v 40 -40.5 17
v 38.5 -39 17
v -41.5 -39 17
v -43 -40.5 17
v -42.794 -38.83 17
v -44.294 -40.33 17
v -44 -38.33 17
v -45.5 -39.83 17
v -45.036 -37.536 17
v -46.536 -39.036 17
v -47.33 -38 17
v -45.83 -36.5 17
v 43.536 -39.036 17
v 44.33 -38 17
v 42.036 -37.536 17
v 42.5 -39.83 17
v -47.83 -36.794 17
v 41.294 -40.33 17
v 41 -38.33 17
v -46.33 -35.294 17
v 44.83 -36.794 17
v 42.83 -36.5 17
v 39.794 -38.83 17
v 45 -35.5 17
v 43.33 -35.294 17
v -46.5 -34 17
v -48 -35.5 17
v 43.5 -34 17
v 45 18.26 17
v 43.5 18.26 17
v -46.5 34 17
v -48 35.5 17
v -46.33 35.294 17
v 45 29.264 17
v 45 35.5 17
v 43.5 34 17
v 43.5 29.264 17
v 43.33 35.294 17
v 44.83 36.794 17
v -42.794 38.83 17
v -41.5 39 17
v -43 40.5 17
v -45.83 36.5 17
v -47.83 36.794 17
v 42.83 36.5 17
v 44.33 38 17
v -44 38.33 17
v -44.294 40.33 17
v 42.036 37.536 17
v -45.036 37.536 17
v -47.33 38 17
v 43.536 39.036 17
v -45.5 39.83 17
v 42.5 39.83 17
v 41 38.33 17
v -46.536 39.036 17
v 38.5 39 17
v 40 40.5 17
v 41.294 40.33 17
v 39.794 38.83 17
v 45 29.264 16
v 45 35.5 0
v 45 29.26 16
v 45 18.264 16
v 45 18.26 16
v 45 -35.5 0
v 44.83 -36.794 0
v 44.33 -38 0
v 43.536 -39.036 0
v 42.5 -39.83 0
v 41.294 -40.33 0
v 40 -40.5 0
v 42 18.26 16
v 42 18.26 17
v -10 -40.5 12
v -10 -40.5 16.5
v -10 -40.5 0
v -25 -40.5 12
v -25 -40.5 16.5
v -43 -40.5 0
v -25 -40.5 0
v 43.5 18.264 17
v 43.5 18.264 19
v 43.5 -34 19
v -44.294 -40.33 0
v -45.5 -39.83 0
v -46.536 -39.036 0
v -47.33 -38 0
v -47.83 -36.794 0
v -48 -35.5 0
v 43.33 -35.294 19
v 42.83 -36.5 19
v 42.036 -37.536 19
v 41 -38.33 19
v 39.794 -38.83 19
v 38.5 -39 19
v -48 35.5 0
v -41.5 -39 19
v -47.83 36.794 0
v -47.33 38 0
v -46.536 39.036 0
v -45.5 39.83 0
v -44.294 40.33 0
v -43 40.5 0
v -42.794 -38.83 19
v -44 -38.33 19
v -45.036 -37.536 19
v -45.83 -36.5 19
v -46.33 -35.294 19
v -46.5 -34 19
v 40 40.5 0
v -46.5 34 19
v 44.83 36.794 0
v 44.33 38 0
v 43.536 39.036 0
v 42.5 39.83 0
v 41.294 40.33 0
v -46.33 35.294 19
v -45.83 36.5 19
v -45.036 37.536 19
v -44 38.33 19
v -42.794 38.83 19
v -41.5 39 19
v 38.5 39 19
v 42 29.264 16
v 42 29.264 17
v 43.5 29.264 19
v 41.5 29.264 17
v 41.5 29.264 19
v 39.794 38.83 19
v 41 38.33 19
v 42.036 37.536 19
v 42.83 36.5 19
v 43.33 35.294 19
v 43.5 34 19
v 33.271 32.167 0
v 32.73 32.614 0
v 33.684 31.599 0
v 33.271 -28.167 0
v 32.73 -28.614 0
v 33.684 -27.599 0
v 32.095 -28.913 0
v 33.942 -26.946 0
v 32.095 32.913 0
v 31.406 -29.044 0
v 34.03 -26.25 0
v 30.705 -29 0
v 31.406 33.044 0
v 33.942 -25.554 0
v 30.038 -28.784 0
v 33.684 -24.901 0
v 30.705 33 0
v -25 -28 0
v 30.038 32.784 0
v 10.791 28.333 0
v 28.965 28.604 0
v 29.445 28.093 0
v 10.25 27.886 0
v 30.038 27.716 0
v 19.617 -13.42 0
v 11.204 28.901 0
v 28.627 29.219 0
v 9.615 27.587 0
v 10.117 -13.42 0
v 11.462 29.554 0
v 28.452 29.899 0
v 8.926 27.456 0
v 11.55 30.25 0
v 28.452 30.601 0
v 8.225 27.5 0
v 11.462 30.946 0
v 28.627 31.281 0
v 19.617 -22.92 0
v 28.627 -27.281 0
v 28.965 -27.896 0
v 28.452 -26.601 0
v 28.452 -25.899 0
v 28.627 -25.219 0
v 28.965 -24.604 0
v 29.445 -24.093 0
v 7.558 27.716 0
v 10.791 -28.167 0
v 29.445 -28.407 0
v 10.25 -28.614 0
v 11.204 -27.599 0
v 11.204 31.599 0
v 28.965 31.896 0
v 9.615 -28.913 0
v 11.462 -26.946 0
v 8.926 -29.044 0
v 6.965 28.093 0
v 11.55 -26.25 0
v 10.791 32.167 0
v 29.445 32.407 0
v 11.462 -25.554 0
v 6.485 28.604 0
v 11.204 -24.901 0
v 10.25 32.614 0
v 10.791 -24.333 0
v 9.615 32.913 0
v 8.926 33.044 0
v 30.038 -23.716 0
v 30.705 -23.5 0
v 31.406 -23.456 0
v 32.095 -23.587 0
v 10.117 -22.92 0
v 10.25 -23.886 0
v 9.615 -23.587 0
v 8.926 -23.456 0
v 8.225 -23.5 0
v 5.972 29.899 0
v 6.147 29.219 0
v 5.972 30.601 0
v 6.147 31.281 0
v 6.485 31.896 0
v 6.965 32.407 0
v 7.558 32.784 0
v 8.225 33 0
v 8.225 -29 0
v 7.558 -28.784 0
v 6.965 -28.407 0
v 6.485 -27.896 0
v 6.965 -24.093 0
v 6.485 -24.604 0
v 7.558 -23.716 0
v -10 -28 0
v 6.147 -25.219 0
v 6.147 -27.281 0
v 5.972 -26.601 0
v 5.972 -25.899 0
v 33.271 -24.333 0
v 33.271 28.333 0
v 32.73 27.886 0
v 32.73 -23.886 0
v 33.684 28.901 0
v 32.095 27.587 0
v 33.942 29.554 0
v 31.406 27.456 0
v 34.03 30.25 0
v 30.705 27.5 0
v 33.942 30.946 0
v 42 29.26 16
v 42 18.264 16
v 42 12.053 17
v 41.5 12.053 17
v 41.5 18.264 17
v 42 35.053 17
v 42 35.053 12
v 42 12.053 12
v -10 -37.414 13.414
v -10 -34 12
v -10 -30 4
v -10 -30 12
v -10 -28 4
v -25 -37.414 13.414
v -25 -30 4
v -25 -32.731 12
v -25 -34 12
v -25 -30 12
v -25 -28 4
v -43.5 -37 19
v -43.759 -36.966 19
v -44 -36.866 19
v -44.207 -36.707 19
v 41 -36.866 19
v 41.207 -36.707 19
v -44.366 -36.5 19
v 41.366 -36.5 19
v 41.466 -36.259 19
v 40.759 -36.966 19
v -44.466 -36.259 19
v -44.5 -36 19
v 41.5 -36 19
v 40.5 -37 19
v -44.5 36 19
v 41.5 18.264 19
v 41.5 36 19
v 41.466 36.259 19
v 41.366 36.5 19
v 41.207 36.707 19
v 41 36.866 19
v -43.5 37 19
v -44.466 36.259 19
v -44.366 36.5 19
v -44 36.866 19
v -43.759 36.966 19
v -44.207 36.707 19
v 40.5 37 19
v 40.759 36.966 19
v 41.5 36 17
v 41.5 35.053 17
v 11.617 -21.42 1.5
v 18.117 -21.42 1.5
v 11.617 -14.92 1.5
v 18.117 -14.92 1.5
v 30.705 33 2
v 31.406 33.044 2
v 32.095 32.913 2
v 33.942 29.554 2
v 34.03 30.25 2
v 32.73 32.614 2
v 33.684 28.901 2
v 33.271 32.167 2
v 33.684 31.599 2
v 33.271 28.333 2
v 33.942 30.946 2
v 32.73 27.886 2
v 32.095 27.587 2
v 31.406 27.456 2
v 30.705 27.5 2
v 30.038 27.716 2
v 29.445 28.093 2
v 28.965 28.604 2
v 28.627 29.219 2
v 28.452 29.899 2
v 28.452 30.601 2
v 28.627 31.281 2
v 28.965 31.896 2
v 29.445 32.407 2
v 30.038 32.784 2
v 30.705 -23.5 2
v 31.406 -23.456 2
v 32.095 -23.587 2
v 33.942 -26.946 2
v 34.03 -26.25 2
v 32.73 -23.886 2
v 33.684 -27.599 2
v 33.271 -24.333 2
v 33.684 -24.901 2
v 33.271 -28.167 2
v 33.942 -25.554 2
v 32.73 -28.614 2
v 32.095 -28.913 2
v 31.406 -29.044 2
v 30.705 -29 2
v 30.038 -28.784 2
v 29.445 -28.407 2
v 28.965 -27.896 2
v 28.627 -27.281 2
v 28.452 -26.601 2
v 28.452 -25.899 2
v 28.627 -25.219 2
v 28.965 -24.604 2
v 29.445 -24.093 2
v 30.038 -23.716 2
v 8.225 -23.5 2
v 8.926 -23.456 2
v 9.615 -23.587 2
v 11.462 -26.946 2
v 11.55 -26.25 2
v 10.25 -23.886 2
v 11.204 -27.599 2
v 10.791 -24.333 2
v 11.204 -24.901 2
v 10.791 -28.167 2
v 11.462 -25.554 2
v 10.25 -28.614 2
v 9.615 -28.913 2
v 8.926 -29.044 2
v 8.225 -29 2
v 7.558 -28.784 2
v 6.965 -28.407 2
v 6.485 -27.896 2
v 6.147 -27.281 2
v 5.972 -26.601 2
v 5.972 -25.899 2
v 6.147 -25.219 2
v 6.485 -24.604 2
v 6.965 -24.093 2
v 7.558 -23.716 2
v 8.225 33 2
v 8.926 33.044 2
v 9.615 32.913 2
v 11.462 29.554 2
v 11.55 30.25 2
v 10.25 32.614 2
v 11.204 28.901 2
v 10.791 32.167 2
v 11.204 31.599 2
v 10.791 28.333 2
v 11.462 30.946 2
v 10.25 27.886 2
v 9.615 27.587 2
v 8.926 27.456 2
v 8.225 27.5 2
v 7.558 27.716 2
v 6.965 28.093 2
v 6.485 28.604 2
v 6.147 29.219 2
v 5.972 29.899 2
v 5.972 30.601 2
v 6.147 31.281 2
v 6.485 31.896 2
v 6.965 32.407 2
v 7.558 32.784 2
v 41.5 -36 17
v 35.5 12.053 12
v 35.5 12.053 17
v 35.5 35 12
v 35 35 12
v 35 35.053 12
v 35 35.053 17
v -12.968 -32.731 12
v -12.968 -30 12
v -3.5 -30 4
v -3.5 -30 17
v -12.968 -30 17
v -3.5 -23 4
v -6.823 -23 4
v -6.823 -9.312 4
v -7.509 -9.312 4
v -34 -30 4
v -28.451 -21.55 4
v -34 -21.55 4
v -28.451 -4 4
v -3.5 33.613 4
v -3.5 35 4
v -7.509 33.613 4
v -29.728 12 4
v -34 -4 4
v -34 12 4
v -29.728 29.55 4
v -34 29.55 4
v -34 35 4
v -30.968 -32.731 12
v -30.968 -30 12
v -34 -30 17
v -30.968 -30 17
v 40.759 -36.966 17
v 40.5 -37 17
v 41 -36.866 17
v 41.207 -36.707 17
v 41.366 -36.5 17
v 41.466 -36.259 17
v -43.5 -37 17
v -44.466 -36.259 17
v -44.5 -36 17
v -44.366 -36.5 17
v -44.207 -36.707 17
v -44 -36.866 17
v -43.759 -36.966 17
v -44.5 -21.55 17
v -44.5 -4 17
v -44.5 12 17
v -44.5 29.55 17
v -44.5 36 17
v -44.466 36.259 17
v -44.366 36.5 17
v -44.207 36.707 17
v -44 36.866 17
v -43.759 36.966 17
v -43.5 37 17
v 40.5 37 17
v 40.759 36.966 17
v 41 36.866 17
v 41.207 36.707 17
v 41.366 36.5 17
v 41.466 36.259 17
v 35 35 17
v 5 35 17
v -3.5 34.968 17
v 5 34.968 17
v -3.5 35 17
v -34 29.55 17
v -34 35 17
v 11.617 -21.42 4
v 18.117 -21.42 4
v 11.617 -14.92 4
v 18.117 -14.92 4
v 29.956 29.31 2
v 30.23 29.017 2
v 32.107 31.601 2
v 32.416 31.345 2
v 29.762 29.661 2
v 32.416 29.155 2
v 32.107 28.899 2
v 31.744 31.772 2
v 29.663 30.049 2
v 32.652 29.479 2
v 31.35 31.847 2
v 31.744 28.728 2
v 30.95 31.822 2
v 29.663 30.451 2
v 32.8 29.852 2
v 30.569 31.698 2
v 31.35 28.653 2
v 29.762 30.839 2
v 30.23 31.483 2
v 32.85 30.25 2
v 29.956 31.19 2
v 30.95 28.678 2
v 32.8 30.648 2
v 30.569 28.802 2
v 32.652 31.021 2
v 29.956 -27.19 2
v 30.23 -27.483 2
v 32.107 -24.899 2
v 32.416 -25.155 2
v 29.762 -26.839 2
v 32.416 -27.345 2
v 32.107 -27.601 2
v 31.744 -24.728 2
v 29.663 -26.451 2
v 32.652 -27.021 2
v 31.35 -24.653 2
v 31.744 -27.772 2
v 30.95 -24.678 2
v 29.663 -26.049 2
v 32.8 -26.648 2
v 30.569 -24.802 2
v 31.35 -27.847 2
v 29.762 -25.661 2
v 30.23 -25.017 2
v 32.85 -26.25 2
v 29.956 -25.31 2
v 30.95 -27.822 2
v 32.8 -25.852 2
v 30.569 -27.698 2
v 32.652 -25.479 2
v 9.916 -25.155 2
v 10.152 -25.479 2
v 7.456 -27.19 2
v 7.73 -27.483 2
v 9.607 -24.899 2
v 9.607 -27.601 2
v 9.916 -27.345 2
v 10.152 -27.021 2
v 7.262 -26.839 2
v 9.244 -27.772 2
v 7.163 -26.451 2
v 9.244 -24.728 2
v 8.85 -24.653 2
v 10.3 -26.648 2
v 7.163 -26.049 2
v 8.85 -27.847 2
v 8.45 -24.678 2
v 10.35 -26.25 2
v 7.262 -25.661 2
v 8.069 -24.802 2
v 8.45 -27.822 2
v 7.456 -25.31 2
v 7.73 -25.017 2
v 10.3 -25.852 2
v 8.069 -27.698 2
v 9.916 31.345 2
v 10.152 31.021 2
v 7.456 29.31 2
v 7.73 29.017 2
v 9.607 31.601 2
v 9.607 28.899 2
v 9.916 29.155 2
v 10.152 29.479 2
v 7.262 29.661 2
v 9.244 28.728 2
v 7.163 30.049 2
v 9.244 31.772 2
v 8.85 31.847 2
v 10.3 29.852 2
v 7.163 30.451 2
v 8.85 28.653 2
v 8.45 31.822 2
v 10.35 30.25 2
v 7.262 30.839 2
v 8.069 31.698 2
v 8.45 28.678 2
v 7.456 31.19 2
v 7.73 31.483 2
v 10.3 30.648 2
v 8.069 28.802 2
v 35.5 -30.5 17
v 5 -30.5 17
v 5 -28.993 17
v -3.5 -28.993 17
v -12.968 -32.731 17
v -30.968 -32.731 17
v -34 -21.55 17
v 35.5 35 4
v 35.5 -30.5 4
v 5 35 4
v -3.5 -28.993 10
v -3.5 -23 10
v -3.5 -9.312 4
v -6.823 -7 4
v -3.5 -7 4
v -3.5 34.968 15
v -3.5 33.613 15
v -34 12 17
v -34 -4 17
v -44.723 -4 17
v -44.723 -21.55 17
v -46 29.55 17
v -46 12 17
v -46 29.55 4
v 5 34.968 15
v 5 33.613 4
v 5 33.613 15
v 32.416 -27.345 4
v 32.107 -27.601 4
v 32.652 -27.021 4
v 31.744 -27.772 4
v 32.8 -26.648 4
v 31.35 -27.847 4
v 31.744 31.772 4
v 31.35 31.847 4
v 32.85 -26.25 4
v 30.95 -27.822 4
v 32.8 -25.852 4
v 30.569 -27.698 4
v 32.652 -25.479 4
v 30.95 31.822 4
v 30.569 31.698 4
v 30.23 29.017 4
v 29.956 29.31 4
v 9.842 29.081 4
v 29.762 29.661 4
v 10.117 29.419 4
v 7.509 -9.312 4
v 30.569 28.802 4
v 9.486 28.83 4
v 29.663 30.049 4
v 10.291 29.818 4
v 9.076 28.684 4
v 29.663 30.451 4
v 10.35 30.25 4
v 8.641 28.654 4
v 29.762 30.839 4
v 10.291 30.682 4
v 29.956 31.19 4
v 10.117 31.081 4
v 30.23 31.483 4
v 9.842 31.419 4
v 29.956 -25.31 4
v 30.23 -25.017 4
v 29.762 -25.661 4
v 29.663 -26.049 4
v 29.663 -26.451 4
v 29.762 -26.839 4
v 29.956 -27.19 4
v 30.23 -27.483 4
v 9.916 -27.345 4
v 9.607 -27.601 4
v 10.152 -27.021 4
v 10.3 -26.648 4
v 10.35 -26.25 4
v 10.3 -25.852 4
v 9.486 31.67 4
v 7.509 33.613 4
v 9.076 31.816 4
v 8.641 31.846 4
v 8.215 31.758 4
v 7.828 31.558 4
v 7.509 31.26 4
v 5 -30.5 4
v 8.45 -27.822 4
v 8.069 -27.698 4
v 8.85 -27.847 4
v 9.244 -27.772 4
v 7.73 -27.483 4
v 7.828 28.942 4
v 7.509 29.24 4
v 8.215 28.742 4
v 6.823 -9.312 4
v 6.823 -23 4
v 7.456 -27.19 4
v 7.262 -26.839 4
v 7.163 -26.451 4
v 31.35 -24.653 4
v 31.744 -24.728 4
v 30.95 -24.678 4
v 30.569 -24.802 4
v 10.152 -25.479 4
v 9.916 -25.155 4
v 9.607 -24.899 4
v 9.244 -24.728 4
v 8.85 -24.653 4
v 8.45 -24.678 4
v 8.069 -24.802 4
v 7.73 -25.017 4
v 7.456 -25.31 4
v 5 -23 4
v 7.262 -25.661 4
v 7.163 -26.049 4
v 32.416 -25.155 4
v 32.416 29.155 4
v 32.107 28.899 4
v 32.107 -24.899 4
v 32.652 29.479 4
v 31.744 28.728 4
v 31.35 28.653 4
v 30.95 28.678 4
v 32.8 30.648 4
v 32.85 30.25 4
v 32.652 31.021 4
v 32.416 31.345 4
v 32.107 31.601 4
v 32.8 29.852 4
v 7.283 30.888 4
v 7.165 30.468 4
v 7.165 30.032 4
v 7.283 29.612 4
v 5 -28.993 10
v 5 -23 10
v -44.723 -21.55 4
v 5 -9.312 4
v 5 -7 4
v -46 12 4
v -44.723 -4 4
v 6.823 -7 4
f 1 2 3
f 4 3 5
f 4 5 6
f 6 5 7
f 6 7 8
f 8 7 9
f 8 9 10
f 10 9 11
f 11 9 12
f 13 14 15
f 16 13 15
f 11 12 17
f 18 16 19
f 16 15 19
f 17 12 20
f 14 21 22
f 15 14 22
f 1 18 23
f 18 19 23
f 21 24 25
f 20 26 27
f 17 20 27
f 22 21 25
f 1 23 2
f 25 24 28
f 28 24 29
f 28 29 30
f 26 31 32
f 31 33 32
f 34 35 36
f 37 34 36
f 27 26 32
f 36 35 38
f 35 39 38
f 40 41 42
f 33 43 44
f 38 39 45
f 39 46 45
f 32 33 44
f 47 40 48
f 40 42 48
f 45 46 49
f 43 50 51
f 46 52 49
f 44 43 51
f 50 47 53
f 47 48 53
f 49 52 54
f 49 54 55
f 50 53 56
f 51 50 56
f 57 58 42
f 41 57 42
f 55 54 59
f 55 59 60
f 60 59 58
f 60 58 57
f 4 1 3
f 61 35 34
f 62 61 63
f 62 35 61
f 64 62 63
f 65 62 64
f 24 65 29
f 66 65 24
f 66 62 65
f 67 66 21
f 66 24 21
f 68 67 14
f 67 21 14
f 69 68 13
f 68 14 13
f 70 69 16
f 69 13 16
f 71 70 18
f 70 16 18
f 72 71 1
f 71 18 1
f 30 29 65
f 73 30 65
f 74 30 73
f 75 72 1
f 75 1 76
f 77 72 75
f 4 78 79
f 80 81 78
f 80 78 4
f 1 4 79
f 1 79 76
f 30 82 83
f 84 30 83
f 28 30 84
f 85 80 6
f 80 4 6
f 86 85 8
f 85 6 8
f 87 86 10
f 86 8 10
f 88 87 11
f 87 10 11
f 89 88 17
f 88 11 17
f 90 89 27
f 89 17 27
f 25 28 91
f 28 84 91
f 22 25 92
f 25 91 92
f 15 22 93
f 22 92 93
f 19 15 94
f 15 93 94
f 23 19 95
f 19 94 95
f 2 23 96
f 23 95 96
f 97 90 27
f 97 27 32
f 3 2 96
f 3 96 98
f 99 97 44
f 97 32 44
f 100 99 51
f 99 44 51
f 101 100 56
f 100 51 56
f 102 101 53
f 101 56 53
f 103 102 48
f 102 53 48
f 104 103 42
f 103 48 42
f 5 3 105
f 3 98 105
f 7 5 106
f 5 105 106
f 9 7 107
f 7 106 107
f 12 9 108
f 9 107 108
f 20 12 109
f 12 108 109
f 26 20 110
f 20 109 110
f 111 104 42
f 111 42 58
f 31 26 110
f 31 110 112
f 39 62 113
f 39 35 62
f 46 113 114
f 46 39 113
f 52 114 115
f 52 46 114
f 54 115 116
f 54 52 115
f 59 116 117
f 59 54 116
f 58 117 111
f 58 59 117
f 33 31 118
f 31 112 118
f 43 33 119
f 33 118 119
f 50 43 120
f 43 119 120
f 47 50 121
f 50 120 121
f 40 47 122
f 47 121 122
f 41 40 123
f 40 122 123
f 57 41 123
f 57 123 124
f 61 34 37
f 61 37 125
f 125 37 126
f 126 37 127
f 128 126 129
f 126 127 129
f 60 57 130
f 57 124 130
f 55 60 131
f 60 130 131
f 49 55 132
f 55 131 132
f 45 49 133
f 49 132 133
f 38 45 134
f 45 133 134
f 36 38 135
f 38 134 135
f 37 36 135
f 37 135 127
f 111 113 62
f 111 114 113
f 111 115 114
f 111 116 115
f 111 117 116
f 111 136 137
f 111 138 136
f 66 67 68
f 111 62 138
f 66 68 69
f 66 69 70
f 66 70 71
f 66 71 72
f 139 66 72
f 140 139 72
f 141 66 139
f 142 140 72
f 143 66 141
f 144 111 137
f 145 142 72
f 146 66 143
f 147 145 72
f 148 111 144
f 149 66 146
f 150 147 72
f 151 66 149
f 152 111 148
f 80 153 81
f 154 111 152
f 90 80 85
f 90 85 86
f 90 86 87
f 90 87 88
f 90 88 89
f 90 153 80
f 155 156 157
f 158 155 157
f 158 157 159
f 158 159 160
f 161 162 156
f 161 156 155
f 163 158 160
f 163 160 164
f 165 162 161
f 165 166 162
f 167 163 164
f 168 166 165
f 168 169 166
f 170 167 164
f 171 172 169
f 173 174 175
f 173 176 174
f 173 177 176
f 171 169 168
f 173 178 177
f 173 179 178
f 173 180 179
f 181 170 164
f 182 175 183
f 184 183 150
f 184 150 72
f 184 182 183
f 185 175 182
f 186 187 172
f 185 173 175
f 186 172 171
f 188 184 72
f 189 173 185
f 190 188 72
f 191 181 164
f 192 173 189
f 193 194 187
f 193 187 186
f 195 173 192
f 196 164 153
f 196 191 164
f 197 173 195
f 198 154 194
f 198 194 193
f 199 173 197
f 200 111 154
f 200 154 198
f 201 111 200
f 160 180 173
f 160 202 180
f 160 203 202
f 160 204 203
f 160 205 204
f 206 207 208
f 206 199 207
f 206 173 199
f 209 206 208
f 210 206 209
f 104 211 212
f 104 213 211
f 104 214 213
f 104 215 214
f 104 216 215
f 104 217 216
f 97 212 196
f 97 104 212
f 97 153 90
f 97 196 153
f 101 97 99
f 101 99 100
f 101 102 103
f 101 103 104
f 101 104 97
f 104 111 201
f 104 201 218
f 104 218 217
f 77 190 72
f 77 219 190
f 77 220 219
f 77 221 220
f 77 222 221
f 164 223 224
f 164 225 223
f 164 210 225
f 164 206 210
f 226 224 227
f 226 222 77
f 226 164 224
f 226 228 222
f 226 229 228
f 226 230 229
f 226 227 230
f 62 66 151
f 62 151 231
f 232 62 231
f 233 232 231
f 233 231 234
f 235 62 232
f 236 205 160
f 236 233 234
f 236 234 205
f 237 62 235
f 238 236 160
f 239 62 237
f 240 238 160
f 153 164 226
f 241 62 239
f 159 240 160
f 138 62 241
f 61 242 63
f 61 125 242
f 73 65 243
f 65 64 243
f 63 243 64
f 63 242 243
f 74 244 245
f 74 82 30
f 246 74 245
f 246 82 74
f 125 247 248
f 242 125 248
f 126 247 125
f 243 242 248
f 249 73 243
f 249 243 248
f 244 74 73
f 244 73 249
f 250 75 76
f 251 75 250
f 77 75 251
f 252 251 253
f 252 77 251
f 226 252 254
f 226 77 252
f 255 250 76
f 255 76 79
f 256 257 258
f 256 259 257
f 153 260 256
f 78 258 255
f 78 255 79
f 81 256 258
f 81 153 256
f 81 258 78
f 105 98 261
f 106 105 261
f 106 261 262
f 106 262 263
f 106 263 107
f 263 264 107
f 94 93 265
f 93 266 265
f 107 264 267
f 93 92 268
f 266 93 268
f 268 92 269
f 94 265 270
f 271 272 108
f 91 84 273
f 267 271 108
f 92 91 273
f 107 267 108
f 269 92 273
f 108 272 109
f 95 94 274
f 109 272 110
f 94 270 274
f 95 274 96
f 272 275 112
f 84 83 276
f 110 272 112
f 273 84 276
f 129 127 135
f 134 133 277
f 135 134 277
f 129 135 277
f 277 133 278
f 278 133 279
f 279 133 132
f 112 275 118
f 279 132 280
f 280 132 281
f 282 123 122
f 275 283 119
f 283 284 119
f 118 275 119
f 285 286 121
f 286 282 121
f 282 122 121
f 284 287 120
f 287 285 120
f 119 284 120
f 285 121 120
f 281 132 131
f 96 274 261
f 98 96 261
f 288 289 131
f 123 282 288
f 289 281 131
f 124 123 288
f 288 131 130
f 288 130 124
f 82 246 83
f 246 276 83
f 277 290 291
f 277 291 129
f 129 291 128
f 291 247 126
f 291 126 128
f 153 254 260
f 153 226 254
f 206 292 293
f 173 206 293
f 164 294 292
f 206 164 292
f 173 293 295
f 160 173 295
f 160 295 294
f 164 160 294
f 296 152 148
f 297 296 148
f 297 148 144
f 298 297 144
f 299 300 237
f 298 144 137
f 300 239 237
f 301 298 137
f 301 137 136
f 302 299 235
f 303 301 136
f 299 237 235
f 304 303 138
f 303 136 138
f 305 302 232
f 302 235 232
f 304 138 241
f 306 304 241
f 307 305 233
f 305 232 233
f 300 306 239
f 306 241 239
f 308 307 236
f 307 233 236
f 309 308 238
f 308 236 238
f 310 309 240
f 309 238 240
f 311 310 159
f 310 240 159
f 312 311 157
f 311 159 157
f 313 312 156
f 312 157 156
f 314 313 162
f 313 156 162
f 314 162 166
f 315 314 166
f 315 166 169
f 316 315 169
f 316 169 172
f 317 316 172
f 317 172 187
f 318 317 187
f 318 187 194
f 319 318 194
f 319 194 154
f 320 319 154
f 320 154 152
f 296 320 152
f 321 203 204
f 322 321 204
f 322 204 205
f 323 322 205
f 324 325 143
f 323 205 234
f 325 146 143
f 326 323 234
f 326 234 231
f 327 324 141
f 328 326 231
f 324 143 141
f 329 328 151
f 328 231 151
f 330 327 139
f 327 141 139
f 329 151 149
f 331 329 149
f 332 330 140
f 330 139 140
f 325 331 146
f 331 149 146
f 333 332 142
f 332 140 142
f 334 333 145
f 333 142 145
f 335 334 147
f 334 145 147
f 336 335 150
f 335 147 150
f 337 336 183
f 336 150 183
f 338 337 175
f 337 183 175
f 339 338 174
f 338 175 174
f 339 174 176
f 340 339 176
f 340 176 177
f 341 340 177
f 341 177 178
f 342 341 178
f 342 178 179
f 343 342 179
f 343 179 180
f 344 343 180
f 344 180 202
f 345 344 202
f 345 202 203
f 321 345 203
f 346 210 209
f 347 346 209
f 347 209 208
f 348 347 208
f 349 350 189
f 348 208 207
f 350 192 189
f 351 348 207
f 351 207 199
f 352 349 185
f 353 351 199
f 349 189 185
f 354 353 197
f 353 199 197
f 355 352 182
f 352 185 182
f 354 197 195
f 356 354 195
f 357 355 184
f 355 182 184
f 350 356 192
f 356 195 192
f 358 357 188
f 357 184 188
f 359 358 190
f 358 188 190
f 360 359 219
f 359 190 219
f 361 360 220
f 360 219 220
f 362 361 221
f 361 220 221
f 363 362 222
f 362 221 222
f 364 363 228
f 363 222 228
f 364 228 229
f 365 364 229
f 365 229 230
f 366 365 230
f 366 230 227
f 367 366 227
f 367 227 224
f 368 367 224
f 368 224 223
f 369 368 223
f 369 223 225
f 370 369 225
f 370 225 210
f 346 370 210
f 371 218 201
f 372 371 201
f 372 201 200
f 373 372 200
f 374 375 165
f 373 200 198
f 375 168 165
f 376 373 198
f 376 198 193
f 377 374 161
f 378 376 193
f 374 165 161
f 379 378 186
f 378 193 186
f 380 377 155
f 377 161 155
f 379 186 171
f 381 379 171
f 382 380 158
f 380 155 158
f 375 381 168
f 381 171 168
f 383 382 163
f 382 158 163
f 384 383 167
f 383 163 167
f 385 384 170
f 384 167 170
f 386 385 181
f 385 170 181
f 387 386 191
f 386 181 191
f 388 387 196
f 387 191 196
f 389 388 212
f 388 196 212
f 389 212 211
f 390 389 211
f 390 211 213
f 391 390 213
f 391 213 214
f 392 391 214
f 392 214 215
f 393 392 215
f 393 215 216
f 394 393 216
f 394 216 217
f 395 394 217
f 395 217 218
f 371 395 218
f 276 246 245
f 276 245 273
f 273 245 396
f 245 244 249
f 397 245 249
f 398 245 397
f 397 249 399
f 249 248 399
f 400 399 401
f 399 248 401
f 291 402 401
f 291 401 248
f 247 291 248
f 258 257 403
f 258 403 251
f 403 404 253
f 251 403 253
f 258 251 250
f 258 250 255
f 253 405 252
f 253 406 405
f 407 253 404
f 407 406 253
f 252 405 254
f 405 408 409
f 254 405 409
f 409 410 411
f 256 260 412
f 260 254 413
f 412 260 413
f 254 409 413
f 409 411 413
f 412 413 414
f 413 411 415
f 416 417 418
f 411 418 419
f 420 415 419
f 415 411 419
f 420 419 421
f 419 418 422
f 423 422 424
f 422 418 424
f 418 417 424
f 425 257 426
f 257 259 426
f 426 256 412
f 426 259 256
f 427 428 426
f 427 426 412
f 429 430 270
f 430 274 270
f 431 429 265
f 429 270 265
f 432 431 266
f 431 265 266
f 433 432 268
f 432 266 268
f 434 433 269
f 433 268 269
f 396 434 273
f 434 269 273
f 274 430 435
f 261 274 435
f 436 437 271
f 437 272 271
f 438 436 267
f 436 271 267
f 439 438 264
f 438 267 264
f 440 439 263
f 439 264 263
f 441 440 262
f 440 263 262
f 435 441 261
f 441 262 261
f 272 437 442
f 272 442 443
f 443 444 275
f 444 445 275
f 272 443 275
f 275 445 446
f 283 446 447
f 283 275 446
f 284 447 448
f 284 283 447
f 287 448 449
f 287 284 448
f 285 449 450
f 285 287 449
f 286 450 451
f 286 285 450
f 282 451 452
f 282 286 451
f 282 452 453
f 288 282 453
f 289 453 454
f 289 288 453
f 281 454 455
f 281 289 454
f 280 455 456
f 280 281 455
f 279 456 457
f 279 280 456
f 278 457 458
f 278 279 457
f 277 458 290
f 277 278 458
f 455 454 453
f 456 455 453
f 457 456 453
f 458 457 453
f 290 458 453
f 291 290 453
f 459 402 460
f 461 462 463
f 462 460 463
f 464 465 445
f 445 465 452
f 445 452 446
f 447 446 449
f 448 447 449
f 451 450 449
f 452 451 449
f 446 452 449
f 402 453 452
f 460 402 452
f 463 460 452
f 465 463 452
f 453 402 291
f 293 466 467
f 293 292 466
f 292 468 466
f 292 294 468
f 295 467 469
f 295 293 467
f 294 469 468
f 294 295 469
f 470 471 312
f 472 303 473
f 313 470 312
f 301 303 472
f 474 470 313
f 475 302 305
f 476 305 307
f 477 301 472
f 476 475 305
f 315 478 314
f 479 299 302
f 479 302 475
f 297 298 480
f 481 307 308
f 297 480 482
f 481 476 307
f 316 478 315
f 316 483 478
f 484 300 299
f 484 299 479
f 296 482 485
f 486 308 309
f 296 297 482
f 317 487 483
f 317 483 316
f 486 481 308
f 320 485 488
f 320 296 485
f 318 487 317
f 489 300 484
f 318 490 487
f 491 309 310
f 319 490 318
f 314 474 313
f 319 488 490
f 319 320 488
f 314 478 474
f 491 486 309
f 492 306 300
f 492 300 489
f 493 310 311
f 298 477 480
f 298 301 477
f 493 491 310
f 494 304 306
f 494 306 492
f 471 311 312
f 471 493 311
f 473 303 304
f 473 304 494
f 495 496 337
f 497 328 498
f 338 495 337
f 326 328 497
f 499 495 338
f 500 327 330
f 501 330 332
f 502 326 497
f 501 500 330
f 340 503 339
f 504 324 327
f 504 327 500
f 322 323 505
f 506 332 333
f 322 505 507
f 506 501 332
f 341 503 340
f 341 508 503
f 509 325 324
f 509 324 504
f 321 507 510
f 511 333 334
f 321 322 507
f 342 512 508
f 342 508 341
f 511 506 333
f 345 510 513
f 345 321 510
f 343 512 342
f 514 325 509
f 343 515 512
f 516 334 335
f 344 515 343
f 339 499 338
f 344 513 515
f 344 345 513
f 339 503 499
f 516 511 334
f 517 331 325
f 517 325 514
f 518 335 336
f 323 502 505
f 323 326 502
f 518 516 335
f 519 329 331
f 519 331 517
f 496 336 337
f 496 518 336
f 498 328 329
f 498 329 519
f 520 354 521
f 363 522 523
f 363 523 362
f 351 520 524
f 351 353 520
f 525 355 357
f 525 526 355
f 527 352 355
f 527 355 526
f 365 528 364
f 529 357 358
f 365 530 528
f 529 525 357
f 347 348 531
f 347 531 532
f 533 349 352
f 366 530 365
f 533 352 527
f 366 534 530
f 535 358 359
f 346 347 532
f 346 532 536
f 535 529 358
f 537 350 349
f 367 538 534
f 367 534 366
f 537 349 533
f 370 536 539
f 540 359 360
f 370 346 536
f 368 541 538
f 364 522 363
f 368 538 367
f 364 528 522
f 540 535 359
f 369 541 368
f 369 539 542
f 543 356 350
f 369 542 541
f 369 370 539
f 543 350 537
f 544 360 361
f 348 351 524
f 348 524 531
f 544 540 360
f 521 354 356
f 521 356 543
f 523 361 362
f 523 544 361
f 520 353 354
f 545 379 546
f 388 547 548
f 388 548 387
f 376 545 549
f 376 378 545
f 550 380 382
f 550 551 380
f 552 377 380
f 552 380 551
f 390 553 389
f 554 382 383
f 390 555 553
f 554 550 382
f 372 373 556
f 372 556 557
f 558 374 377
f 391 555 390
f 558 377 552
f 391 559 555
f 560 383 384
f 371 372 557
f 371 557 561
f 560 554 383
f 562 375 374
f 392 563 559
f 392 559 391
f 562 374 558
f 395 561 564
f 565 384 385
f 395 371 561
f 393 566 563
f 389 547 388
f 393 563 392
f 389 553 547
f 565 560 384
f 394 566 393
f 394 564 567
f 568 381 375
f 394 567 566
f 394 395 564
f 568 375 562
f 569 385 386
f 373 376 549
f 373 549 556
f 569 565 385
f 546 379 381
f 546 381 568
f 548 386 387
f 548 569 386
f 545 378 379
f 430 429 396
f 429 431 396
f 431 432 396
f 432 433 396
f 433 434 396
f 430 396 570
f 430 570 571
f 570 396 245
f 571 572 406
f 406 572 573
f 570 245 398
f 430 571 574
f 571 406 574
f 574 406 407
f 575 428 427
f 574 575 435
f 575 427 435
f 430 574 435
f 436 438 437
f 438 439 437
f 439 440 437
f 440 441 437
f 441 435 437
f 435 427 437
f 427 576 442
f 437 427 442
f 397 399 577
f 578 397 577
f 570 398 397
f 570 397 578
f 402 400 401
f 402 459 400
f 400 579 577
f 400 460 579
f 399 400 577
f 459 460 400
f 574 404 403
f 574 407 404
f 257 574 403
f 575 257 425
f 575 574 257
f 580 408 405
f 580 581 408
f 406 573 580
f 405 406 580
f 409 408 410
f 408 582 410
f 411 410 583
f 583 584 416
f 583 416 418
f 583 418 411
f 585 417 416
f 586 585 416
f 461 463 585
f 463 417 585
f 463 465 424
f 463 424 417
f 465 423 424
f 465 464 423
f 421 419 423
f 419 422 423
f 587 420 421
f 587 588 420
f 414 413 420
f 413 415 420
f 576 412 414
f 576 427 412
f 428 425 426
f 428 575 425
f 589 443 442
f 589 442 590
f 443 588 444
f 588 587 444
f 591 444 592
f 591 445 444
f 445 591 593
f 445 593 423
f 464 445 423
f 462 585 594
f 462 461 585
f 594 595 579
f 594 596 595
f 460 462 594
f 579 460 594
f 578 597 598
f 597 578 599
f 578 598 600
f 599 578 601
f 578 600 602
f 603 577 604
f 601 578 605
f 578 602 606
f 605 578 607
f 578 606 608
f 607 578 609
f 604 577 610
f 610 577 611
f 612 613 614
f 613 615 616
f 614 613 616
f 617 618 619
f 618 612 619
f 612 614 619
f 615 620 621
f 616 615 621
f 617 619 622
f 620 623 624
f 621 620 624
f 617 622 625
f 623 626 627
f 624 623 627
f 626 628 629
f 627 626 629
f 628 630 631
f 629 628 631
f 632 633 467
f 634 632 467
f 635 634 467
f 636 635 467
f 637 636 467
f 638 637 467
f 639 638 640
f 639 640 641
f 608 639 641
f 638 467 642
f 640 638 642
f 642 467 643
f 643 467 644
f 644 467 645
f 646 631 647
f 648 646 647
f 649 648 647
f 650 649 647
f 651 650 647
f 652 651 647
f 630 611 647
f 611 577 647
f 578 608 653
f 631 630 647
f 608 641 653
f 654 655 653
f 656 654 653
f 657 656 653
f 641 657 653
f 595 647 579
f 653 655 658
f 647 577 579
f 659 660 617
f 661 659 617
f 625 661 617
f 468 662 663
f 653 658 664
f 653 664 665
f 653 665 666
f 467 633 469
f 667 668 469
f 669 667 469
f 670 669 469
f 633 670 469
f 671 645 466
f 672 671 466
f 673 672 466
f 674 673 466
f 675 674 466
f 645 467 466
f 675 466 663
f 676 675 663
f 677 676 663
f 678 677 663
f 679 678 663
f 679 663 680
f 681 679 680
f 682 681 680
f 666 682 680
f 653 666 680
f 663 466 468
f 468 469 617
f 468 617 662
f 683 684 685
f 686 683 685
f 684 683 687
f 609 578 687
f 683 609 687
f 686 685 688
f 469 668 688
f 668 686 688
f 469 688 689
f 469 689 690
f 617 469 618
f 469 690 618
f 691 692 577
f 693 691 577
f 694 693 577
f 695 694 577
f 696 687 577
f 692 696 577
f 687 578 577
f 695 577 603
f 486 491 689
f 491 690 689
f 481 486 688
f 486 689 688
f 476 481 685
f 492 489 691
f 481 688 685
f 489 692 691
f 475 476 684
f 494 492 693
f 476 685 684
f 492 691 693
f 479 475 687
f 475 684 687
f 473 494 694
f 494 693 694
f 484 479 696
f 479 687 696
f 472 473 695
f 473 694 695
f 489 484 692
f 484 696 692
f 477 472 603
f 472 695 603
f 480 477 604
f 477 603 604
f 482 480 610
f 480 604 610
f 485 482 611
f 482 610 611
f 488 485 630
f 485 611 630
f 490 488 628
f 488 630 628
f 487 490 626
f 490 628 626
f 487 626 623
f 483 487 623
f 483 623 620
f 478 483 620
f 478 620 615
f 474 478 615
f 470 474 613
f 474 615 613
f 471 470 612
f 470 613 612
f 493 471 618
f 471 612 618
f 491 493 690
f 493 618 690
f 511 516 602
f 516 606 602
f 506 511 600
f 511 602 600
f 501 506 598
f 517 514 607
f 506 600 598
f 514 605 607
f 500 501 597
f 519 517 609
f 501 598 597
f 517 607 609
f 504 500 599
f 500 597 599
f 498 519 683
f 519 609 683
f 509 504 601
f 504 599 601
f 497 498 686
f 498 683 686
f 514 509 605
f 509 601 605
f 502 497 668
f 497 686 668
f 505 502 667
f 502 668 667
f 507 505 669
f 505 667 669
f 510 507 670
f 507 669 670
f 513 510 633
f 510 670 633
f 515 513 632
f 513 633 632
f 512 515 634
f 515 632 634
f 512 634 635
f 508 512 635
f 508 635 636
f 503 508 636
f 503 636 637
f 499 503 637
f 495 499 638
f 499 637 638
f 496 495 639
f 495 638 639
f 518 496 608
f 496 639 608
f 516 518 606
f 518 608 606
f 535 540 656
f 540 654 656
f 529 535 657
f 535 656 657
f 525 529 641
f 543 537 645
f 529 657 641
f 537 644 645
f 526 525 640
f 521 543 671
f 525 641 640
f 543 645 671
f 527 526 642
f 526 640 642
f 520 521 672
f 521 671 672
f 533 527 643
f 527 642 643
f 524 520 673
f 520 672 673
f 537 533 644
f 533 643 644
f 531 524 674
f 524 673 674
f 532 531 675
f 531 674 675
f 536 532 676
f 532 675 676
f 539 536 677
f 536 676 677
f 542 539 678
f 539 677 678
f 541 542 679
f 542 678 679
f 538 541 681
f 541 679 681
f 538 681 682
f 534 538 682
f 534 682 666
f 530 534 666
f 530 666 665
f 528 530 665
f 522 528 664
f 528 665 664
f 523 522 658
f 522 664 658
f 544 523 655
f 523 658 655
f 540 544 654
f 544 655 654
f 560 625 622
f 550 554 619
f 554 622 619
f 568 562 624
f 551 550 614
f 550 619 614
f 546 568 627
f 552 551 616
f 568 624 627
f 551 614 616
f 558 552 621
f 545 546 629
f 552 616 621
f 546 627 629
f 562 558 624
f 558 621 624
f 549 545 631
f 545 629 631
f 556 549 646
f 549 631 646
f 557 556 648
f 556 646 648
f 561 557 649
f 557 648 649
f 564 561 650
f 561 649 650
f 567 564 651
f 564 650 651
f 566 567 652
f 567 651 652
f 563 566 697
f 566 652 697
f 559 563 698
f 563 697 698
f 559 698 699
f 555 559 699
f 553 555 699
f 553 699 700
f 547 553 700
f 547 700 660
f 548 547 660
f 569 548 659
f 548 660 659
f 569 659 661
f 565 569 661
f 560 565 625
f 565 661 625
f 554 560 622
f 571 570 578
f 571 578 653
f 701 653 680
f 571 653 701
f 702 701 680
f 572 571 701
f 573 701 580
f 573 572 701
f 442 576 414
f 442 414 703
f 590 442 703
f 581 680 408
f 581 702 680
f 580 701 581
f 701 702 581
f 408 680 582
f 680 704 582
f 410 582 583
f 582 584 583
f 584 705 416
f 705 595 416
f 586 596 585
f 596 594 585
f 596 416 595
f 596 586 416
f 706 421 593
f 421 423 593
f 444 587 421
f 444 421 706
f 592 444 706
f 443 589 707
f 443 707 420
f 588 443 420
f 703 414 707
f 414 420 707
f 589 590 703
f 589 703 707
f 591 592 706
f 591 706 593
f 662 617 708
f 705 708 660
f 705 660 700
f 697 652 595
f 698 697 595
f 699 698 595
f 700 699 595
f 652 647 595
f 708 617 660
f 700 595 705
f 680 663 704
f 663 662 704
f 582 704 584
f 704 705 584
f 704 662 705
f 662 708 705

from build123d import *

# Parameters (mm, degrees)
SKETCH_W        = 93
SKETCH_H        = 81
PAD_DEPTH       = 17
SKETCH001_W     = 30.5
SKETCH001_H     = 65.5
POCKET_DEPTH    = 13
SKETCH002_W     = 30.5
SKETCH002_H     = 65
POCKET001_DEPTH = 13
SKETCH003_W     = 13.6458
SKETCH003_H     = 16
POCKET002_DEPTH = 13
SKETCH004_W     = 16.2724
SKETCH004_H     = 17.55
POCKET003_DEPTH = 13
SKETCH005_W     = 15.0186
SKETCH005_H     = 42.9244
POCKET004_DEPTH = 13
SKETCH006_W     = 15
SKETCH006_H     = 25.952942
POCKET005_DEPTH = 12
SKETCH007_W     = 18
SKETCH007_H     = 6.009419
POCKET006_DEPTH = 5
SKETCH009_W     = 7
SKETCH009_H     = 23
POCKET008_DEPTH = 5
SKETCH010_W     = 11.0603
SKETCH010_H     = 11
POCKET009_DEPTH = 1
SKETCH011_W     = 6.5
SKETCH011_H     = 6.5
POCKET010_DEPTH = 17.001
SKETCH014_W     = 16.1
SKETCH014_H     = 12
POCKET011_DEPTH = 5
SKETCH016_R     = 1.6
POCKET012_DEPTH = 12.001
SKETCH017_W     = 90
SKETCH017_H     = 78
SKETCH017_W_2   = 86
SKETCH017_H_2   = 74
PAD001_DEPTH    = 2
SKETCH021_W     = 7.24647
SKETCH021_H     = 11
POCKET013_DEPTH = 3
SKETCH020_R     = 2.8
POCKET014_DEPTH = 2
CHAMFER_SIZE    = 1.5
CHAMFER001_SIZE = 4.5
CHAMFER002_SIZE = 2
FILLET_R        = 1
FILLET001_R     = 5
FILLET002_R     = 5
SKETCH022_W     = 11.3729
SKETCH022_H     = 7.67559
POCKET015_DEPTH = 7
SKETCH023_W     = 9.10313
SKETCH023_H     = 1.48191
POCKET016_DEPTH = 2


with BuildPart() as part:
    # Sketch → Pad (new body)
    with BuildSketch(Plane.XY):
        with Locations((-1.5, 0)):
            Rectangle(SKETCH_W, SKETCH_H)
    extrude(amount=PAD_DEPTH)

    # Sketch001 → Pocket (cut)
    with BuildSketch(Plane.XY.offset(17)):
        with Locations((20.25, 2.25)):
            Rectangle(SKETCH001_W, SKETCH001_H)
    extrude(amount=-POCKET_DEPTH, mode=Mode.SUBTRACT)

    # Sketch002 → Pocket001 (cut)
    with BuildSketch(Plane.XY.offset(17)):
        with Locations((-18.75, 2.5)):
            Rectangle(SKETCH002_W, SKETCH002_H)
    extrude(amount=-POCKET001_DEPTH, mode=Mode.SUBTRACT)

    # Sketch003 → Pocket002 (cut)
    with BuildSketch(Plane.XY.offset(17)):
        with Locations((0, -15)):
            Rectangle(SKETCH003_W, SKETCH003_H)
    extrude(amount=-POCKET002_DEPTH, mode=Mode.SUBTRACT)

    # Sketch004 → Pocket003 (cut)
    with BuildSketch(Plane.XY.offset(17)):
        with Locations((-37.8638, 20.775)):
            Rectangle(SKETCH004_W, SKETCH004_H)
        with Locations((-36.586784, -12.775)):
            Rectangle(SKETCH004_W, SKETCH004_H)
    extrude(amount=-POCKET003_DEPTH, mode=Mode.SUBTRACT)

    # Sketch005 → Pocket004 (cut)
    with BuildSketch(Plane.XY.offset(17)):
        with Locations((0, 12.1505)):
            Rectangle(SKETCH005_W, SKETCH005_H)
    extrude(amount=-POCKET004_DEPTH, mode=Mode.SUBTRACT)

    # Sketch006 → Pocket005 (cut)
    with BuildSketch(Plane(origin=(0, 0, 0), x_dir=(1, 0, 0), z_dir=(0, 0, -1))):
        with Locations((-17.5, 40.976471)):
            Rectangle(SKETCH006_W, SKETCH006_H)
    extrude(amount=-POCKET005_DEPTH, mode=Mode.SUBTRACT)

    # Sketch007 → Pocket006 (cut)
    with BuildSketch(Plane.XY.offset(17)):
        with Locations((-21.9684, -29.726443)):
            Rectangle(SKETCH007_W, SKETCH007_H)
    extrude(amount=-POCKET006_DEPTH, mode=Mode.SUBTRACT)

    # Sketch009 → Pocket008 (cut)
    with BuildSketch(Plane.XY.offset(17)):
        with Locations((38.5, 23.5529)):
            Rectangle(SKETCH009_W, SKETCH009_H)
    extrude(amount=-POCKET008_DEPTH, mode=Mode.SUBTRACT)

    # Sketch010 → Pocket009 (cut)
    with BuildSketch(Plane.XY.offset(17)):
        with Locations((41.12507, 23.7601)):
            Rectangle(SKETCH010_W, SKETCH010_H)
    extrude(amount=-POCKET009_DEPTH, mode=Mode.SUBTRACT)

    # Sketch011 → Pocket010 (cut, through all)
    with BuildSketch(Plane(origin=(0, 0, 0), x_dir=(1, 0, 0), z_dir=(0, 0, -1))):
        with Locations((14.8666, 18.1696)):
            Rectangle(SKETCH011_W, SKETCH011_H)
    extrude(amount=-POCKET010_DEPTH, mode=Mode.SUBTRACT)

    # Sketch014 → Pocket011 (cut)
    with BuildSketch(Plane.YZ.offset(5)):
        with Locations((4.01337, 13)):
            Rectangle(SKETCH014_W, SKETCH014_H)
    extrude(amount=-POCKET011_DEPTH, mode=Mode.SUBTRACT)

    # Sketch016 → Pocket012 (cut, through all)
    with BuildSketch(Plane.XY.offset(12)):
        with Locations((8.75, 30.25)):
            Circle(SKETCH016_R)
        with Locations((31.25, 30.25)):
            Circle(SKETCH016_R)
        with Locations((8.75, -26.25)):
            Circle(SKETCH016_R)
        with Locations((31.25, -26.25)):
            Circle(SKETCH016_R)
    extrude(amount=-POCKET012_DEPTH, mode=Mode.SUBTRACT)

    # Sketch017 → Pad001 (new body)
    with BuildSketch(Plane.XY.offset(17)):
        with Locations((-1.5, 0)):
            Rectangle(SKETCH017_W, SKETCH017_H)
        with Locations((-1.5, 0)):
            Rectangle(SKETCH017_W_2, SKETCH017_H_2, mode=Mode.SUBTRACT)
    extrude(amount=PAD001_DEPTH)

    # Sketch021 → Pocket013 (cut)
    with BuildSketch(Plane.XY.offset(19)):
        with Locations((41.847535, 23.7642)):
            Rectangle(SKETCH021_W, SKETCH021_H)
    extrude(amount=-POCKET013_DEPTH, mode=Mode.SUBTRACT)

    # Sketch020 → Pocket014 (cut)
    with BuildSketch(Plane(origin=(0, 0, 0), x_dir=(1, 0, 0), z_dir=(0, 0, -1))):
        with Locations((8.75, 26.25)):
            Circle(SKETCH020_R)
        with Locations((31.23, 26.25)):
            Circle(SKETCH020_R)
        with Locations((8.75, -30.25)):
            Circle(SKETCH020_R)
        with Locations((31.23, -30.25)):
            Circle(SKETCH020_R)
    extrude(amount=-POCKET014_DEPTH, mode=Mode.SUBTRACT)

    # Chamfer
    chamfer_edges = [part.edges().sort_by_distance(p)[0] for p in [
        (14.8666, -21.4196, 0),
        (18.1166, -18.1696, 0),
        (14.8666, -14.9196, 0),
        (11.6166, -18.1696, 0),
    ]]
    chamfer(chamfer_edges, length=CHAMFER_SIZE)

    # Chamfer001
    chamfer001_edges = [part.edges().sort_by_distance(p)[0] for p in [
        (-17.5, -40.5, 12),
    ]]
    chamfer(chamfer001_edges, length=CHAMFER001_SIZE)

    # Chamfer002
    chamfer002_edges = [part.edges().sort_by_distance(p)[0] for p in [
        (-17.5, -36, 12),
    ]]
    chamfer(chamfer002_edges, length=CHAMFER002_SIZE)

    # Fillet
    fillet_edges = [part.edges().sort_by_distance(p)[0] for p in [
        (41.5, 37, 18),
        (41.5, -37, 18),
        (-44.5, 37, 18),
        (-44.5, -37, 18),
    ]]
    fillet(fillet_edges, radius=FILLET_R)

    # Fillet001
    fillet001_edges = [part.edges().sort_by_distance(p)[0] for p in [
        (-46.5, -39, 18),
        (-46.5, 39, 18),
        (43.5, 39, 18),
        (43.5, -39, 18),
    ]]
    fillet(fillet001_edges, radius=FILLET001_R)

    # Fillet002
    fillet002_edges = [part.edges().sort_by_distance(p)[0] for p in [
        (45, -40.5, 8.5),
        (-48, -40.5, 8.5),
        (-48, 40.5, 8.5),
        (45, 40.5, 8.5),
    ]]
    fillet(fillet002_edges, radius=FILLET002_R)

    # Sketch022 → Pocket015 (cut)
    with BuildSketch(Plane.XY.offset(17)):
        with Locations((0.24661, -25.155595)):
            Rectangle(SKETCH022_W, SKETCH022_H)
    extrude(amount=-POCKET015_DEPTH, mode=Mode.SUBTRACT)

    # Sketch023 → Pocket016 (cut)
    with BuildSketch(Plane.XY.offset(17)):
        with Locations((0.792355, 34.227255)):
            Rectangle(SKETCH023_W, SKETCH023_H)
    extrude(amount=-POCKET016_DEPTH, mode=Mode.SUBTRACT)


solid = part.part
